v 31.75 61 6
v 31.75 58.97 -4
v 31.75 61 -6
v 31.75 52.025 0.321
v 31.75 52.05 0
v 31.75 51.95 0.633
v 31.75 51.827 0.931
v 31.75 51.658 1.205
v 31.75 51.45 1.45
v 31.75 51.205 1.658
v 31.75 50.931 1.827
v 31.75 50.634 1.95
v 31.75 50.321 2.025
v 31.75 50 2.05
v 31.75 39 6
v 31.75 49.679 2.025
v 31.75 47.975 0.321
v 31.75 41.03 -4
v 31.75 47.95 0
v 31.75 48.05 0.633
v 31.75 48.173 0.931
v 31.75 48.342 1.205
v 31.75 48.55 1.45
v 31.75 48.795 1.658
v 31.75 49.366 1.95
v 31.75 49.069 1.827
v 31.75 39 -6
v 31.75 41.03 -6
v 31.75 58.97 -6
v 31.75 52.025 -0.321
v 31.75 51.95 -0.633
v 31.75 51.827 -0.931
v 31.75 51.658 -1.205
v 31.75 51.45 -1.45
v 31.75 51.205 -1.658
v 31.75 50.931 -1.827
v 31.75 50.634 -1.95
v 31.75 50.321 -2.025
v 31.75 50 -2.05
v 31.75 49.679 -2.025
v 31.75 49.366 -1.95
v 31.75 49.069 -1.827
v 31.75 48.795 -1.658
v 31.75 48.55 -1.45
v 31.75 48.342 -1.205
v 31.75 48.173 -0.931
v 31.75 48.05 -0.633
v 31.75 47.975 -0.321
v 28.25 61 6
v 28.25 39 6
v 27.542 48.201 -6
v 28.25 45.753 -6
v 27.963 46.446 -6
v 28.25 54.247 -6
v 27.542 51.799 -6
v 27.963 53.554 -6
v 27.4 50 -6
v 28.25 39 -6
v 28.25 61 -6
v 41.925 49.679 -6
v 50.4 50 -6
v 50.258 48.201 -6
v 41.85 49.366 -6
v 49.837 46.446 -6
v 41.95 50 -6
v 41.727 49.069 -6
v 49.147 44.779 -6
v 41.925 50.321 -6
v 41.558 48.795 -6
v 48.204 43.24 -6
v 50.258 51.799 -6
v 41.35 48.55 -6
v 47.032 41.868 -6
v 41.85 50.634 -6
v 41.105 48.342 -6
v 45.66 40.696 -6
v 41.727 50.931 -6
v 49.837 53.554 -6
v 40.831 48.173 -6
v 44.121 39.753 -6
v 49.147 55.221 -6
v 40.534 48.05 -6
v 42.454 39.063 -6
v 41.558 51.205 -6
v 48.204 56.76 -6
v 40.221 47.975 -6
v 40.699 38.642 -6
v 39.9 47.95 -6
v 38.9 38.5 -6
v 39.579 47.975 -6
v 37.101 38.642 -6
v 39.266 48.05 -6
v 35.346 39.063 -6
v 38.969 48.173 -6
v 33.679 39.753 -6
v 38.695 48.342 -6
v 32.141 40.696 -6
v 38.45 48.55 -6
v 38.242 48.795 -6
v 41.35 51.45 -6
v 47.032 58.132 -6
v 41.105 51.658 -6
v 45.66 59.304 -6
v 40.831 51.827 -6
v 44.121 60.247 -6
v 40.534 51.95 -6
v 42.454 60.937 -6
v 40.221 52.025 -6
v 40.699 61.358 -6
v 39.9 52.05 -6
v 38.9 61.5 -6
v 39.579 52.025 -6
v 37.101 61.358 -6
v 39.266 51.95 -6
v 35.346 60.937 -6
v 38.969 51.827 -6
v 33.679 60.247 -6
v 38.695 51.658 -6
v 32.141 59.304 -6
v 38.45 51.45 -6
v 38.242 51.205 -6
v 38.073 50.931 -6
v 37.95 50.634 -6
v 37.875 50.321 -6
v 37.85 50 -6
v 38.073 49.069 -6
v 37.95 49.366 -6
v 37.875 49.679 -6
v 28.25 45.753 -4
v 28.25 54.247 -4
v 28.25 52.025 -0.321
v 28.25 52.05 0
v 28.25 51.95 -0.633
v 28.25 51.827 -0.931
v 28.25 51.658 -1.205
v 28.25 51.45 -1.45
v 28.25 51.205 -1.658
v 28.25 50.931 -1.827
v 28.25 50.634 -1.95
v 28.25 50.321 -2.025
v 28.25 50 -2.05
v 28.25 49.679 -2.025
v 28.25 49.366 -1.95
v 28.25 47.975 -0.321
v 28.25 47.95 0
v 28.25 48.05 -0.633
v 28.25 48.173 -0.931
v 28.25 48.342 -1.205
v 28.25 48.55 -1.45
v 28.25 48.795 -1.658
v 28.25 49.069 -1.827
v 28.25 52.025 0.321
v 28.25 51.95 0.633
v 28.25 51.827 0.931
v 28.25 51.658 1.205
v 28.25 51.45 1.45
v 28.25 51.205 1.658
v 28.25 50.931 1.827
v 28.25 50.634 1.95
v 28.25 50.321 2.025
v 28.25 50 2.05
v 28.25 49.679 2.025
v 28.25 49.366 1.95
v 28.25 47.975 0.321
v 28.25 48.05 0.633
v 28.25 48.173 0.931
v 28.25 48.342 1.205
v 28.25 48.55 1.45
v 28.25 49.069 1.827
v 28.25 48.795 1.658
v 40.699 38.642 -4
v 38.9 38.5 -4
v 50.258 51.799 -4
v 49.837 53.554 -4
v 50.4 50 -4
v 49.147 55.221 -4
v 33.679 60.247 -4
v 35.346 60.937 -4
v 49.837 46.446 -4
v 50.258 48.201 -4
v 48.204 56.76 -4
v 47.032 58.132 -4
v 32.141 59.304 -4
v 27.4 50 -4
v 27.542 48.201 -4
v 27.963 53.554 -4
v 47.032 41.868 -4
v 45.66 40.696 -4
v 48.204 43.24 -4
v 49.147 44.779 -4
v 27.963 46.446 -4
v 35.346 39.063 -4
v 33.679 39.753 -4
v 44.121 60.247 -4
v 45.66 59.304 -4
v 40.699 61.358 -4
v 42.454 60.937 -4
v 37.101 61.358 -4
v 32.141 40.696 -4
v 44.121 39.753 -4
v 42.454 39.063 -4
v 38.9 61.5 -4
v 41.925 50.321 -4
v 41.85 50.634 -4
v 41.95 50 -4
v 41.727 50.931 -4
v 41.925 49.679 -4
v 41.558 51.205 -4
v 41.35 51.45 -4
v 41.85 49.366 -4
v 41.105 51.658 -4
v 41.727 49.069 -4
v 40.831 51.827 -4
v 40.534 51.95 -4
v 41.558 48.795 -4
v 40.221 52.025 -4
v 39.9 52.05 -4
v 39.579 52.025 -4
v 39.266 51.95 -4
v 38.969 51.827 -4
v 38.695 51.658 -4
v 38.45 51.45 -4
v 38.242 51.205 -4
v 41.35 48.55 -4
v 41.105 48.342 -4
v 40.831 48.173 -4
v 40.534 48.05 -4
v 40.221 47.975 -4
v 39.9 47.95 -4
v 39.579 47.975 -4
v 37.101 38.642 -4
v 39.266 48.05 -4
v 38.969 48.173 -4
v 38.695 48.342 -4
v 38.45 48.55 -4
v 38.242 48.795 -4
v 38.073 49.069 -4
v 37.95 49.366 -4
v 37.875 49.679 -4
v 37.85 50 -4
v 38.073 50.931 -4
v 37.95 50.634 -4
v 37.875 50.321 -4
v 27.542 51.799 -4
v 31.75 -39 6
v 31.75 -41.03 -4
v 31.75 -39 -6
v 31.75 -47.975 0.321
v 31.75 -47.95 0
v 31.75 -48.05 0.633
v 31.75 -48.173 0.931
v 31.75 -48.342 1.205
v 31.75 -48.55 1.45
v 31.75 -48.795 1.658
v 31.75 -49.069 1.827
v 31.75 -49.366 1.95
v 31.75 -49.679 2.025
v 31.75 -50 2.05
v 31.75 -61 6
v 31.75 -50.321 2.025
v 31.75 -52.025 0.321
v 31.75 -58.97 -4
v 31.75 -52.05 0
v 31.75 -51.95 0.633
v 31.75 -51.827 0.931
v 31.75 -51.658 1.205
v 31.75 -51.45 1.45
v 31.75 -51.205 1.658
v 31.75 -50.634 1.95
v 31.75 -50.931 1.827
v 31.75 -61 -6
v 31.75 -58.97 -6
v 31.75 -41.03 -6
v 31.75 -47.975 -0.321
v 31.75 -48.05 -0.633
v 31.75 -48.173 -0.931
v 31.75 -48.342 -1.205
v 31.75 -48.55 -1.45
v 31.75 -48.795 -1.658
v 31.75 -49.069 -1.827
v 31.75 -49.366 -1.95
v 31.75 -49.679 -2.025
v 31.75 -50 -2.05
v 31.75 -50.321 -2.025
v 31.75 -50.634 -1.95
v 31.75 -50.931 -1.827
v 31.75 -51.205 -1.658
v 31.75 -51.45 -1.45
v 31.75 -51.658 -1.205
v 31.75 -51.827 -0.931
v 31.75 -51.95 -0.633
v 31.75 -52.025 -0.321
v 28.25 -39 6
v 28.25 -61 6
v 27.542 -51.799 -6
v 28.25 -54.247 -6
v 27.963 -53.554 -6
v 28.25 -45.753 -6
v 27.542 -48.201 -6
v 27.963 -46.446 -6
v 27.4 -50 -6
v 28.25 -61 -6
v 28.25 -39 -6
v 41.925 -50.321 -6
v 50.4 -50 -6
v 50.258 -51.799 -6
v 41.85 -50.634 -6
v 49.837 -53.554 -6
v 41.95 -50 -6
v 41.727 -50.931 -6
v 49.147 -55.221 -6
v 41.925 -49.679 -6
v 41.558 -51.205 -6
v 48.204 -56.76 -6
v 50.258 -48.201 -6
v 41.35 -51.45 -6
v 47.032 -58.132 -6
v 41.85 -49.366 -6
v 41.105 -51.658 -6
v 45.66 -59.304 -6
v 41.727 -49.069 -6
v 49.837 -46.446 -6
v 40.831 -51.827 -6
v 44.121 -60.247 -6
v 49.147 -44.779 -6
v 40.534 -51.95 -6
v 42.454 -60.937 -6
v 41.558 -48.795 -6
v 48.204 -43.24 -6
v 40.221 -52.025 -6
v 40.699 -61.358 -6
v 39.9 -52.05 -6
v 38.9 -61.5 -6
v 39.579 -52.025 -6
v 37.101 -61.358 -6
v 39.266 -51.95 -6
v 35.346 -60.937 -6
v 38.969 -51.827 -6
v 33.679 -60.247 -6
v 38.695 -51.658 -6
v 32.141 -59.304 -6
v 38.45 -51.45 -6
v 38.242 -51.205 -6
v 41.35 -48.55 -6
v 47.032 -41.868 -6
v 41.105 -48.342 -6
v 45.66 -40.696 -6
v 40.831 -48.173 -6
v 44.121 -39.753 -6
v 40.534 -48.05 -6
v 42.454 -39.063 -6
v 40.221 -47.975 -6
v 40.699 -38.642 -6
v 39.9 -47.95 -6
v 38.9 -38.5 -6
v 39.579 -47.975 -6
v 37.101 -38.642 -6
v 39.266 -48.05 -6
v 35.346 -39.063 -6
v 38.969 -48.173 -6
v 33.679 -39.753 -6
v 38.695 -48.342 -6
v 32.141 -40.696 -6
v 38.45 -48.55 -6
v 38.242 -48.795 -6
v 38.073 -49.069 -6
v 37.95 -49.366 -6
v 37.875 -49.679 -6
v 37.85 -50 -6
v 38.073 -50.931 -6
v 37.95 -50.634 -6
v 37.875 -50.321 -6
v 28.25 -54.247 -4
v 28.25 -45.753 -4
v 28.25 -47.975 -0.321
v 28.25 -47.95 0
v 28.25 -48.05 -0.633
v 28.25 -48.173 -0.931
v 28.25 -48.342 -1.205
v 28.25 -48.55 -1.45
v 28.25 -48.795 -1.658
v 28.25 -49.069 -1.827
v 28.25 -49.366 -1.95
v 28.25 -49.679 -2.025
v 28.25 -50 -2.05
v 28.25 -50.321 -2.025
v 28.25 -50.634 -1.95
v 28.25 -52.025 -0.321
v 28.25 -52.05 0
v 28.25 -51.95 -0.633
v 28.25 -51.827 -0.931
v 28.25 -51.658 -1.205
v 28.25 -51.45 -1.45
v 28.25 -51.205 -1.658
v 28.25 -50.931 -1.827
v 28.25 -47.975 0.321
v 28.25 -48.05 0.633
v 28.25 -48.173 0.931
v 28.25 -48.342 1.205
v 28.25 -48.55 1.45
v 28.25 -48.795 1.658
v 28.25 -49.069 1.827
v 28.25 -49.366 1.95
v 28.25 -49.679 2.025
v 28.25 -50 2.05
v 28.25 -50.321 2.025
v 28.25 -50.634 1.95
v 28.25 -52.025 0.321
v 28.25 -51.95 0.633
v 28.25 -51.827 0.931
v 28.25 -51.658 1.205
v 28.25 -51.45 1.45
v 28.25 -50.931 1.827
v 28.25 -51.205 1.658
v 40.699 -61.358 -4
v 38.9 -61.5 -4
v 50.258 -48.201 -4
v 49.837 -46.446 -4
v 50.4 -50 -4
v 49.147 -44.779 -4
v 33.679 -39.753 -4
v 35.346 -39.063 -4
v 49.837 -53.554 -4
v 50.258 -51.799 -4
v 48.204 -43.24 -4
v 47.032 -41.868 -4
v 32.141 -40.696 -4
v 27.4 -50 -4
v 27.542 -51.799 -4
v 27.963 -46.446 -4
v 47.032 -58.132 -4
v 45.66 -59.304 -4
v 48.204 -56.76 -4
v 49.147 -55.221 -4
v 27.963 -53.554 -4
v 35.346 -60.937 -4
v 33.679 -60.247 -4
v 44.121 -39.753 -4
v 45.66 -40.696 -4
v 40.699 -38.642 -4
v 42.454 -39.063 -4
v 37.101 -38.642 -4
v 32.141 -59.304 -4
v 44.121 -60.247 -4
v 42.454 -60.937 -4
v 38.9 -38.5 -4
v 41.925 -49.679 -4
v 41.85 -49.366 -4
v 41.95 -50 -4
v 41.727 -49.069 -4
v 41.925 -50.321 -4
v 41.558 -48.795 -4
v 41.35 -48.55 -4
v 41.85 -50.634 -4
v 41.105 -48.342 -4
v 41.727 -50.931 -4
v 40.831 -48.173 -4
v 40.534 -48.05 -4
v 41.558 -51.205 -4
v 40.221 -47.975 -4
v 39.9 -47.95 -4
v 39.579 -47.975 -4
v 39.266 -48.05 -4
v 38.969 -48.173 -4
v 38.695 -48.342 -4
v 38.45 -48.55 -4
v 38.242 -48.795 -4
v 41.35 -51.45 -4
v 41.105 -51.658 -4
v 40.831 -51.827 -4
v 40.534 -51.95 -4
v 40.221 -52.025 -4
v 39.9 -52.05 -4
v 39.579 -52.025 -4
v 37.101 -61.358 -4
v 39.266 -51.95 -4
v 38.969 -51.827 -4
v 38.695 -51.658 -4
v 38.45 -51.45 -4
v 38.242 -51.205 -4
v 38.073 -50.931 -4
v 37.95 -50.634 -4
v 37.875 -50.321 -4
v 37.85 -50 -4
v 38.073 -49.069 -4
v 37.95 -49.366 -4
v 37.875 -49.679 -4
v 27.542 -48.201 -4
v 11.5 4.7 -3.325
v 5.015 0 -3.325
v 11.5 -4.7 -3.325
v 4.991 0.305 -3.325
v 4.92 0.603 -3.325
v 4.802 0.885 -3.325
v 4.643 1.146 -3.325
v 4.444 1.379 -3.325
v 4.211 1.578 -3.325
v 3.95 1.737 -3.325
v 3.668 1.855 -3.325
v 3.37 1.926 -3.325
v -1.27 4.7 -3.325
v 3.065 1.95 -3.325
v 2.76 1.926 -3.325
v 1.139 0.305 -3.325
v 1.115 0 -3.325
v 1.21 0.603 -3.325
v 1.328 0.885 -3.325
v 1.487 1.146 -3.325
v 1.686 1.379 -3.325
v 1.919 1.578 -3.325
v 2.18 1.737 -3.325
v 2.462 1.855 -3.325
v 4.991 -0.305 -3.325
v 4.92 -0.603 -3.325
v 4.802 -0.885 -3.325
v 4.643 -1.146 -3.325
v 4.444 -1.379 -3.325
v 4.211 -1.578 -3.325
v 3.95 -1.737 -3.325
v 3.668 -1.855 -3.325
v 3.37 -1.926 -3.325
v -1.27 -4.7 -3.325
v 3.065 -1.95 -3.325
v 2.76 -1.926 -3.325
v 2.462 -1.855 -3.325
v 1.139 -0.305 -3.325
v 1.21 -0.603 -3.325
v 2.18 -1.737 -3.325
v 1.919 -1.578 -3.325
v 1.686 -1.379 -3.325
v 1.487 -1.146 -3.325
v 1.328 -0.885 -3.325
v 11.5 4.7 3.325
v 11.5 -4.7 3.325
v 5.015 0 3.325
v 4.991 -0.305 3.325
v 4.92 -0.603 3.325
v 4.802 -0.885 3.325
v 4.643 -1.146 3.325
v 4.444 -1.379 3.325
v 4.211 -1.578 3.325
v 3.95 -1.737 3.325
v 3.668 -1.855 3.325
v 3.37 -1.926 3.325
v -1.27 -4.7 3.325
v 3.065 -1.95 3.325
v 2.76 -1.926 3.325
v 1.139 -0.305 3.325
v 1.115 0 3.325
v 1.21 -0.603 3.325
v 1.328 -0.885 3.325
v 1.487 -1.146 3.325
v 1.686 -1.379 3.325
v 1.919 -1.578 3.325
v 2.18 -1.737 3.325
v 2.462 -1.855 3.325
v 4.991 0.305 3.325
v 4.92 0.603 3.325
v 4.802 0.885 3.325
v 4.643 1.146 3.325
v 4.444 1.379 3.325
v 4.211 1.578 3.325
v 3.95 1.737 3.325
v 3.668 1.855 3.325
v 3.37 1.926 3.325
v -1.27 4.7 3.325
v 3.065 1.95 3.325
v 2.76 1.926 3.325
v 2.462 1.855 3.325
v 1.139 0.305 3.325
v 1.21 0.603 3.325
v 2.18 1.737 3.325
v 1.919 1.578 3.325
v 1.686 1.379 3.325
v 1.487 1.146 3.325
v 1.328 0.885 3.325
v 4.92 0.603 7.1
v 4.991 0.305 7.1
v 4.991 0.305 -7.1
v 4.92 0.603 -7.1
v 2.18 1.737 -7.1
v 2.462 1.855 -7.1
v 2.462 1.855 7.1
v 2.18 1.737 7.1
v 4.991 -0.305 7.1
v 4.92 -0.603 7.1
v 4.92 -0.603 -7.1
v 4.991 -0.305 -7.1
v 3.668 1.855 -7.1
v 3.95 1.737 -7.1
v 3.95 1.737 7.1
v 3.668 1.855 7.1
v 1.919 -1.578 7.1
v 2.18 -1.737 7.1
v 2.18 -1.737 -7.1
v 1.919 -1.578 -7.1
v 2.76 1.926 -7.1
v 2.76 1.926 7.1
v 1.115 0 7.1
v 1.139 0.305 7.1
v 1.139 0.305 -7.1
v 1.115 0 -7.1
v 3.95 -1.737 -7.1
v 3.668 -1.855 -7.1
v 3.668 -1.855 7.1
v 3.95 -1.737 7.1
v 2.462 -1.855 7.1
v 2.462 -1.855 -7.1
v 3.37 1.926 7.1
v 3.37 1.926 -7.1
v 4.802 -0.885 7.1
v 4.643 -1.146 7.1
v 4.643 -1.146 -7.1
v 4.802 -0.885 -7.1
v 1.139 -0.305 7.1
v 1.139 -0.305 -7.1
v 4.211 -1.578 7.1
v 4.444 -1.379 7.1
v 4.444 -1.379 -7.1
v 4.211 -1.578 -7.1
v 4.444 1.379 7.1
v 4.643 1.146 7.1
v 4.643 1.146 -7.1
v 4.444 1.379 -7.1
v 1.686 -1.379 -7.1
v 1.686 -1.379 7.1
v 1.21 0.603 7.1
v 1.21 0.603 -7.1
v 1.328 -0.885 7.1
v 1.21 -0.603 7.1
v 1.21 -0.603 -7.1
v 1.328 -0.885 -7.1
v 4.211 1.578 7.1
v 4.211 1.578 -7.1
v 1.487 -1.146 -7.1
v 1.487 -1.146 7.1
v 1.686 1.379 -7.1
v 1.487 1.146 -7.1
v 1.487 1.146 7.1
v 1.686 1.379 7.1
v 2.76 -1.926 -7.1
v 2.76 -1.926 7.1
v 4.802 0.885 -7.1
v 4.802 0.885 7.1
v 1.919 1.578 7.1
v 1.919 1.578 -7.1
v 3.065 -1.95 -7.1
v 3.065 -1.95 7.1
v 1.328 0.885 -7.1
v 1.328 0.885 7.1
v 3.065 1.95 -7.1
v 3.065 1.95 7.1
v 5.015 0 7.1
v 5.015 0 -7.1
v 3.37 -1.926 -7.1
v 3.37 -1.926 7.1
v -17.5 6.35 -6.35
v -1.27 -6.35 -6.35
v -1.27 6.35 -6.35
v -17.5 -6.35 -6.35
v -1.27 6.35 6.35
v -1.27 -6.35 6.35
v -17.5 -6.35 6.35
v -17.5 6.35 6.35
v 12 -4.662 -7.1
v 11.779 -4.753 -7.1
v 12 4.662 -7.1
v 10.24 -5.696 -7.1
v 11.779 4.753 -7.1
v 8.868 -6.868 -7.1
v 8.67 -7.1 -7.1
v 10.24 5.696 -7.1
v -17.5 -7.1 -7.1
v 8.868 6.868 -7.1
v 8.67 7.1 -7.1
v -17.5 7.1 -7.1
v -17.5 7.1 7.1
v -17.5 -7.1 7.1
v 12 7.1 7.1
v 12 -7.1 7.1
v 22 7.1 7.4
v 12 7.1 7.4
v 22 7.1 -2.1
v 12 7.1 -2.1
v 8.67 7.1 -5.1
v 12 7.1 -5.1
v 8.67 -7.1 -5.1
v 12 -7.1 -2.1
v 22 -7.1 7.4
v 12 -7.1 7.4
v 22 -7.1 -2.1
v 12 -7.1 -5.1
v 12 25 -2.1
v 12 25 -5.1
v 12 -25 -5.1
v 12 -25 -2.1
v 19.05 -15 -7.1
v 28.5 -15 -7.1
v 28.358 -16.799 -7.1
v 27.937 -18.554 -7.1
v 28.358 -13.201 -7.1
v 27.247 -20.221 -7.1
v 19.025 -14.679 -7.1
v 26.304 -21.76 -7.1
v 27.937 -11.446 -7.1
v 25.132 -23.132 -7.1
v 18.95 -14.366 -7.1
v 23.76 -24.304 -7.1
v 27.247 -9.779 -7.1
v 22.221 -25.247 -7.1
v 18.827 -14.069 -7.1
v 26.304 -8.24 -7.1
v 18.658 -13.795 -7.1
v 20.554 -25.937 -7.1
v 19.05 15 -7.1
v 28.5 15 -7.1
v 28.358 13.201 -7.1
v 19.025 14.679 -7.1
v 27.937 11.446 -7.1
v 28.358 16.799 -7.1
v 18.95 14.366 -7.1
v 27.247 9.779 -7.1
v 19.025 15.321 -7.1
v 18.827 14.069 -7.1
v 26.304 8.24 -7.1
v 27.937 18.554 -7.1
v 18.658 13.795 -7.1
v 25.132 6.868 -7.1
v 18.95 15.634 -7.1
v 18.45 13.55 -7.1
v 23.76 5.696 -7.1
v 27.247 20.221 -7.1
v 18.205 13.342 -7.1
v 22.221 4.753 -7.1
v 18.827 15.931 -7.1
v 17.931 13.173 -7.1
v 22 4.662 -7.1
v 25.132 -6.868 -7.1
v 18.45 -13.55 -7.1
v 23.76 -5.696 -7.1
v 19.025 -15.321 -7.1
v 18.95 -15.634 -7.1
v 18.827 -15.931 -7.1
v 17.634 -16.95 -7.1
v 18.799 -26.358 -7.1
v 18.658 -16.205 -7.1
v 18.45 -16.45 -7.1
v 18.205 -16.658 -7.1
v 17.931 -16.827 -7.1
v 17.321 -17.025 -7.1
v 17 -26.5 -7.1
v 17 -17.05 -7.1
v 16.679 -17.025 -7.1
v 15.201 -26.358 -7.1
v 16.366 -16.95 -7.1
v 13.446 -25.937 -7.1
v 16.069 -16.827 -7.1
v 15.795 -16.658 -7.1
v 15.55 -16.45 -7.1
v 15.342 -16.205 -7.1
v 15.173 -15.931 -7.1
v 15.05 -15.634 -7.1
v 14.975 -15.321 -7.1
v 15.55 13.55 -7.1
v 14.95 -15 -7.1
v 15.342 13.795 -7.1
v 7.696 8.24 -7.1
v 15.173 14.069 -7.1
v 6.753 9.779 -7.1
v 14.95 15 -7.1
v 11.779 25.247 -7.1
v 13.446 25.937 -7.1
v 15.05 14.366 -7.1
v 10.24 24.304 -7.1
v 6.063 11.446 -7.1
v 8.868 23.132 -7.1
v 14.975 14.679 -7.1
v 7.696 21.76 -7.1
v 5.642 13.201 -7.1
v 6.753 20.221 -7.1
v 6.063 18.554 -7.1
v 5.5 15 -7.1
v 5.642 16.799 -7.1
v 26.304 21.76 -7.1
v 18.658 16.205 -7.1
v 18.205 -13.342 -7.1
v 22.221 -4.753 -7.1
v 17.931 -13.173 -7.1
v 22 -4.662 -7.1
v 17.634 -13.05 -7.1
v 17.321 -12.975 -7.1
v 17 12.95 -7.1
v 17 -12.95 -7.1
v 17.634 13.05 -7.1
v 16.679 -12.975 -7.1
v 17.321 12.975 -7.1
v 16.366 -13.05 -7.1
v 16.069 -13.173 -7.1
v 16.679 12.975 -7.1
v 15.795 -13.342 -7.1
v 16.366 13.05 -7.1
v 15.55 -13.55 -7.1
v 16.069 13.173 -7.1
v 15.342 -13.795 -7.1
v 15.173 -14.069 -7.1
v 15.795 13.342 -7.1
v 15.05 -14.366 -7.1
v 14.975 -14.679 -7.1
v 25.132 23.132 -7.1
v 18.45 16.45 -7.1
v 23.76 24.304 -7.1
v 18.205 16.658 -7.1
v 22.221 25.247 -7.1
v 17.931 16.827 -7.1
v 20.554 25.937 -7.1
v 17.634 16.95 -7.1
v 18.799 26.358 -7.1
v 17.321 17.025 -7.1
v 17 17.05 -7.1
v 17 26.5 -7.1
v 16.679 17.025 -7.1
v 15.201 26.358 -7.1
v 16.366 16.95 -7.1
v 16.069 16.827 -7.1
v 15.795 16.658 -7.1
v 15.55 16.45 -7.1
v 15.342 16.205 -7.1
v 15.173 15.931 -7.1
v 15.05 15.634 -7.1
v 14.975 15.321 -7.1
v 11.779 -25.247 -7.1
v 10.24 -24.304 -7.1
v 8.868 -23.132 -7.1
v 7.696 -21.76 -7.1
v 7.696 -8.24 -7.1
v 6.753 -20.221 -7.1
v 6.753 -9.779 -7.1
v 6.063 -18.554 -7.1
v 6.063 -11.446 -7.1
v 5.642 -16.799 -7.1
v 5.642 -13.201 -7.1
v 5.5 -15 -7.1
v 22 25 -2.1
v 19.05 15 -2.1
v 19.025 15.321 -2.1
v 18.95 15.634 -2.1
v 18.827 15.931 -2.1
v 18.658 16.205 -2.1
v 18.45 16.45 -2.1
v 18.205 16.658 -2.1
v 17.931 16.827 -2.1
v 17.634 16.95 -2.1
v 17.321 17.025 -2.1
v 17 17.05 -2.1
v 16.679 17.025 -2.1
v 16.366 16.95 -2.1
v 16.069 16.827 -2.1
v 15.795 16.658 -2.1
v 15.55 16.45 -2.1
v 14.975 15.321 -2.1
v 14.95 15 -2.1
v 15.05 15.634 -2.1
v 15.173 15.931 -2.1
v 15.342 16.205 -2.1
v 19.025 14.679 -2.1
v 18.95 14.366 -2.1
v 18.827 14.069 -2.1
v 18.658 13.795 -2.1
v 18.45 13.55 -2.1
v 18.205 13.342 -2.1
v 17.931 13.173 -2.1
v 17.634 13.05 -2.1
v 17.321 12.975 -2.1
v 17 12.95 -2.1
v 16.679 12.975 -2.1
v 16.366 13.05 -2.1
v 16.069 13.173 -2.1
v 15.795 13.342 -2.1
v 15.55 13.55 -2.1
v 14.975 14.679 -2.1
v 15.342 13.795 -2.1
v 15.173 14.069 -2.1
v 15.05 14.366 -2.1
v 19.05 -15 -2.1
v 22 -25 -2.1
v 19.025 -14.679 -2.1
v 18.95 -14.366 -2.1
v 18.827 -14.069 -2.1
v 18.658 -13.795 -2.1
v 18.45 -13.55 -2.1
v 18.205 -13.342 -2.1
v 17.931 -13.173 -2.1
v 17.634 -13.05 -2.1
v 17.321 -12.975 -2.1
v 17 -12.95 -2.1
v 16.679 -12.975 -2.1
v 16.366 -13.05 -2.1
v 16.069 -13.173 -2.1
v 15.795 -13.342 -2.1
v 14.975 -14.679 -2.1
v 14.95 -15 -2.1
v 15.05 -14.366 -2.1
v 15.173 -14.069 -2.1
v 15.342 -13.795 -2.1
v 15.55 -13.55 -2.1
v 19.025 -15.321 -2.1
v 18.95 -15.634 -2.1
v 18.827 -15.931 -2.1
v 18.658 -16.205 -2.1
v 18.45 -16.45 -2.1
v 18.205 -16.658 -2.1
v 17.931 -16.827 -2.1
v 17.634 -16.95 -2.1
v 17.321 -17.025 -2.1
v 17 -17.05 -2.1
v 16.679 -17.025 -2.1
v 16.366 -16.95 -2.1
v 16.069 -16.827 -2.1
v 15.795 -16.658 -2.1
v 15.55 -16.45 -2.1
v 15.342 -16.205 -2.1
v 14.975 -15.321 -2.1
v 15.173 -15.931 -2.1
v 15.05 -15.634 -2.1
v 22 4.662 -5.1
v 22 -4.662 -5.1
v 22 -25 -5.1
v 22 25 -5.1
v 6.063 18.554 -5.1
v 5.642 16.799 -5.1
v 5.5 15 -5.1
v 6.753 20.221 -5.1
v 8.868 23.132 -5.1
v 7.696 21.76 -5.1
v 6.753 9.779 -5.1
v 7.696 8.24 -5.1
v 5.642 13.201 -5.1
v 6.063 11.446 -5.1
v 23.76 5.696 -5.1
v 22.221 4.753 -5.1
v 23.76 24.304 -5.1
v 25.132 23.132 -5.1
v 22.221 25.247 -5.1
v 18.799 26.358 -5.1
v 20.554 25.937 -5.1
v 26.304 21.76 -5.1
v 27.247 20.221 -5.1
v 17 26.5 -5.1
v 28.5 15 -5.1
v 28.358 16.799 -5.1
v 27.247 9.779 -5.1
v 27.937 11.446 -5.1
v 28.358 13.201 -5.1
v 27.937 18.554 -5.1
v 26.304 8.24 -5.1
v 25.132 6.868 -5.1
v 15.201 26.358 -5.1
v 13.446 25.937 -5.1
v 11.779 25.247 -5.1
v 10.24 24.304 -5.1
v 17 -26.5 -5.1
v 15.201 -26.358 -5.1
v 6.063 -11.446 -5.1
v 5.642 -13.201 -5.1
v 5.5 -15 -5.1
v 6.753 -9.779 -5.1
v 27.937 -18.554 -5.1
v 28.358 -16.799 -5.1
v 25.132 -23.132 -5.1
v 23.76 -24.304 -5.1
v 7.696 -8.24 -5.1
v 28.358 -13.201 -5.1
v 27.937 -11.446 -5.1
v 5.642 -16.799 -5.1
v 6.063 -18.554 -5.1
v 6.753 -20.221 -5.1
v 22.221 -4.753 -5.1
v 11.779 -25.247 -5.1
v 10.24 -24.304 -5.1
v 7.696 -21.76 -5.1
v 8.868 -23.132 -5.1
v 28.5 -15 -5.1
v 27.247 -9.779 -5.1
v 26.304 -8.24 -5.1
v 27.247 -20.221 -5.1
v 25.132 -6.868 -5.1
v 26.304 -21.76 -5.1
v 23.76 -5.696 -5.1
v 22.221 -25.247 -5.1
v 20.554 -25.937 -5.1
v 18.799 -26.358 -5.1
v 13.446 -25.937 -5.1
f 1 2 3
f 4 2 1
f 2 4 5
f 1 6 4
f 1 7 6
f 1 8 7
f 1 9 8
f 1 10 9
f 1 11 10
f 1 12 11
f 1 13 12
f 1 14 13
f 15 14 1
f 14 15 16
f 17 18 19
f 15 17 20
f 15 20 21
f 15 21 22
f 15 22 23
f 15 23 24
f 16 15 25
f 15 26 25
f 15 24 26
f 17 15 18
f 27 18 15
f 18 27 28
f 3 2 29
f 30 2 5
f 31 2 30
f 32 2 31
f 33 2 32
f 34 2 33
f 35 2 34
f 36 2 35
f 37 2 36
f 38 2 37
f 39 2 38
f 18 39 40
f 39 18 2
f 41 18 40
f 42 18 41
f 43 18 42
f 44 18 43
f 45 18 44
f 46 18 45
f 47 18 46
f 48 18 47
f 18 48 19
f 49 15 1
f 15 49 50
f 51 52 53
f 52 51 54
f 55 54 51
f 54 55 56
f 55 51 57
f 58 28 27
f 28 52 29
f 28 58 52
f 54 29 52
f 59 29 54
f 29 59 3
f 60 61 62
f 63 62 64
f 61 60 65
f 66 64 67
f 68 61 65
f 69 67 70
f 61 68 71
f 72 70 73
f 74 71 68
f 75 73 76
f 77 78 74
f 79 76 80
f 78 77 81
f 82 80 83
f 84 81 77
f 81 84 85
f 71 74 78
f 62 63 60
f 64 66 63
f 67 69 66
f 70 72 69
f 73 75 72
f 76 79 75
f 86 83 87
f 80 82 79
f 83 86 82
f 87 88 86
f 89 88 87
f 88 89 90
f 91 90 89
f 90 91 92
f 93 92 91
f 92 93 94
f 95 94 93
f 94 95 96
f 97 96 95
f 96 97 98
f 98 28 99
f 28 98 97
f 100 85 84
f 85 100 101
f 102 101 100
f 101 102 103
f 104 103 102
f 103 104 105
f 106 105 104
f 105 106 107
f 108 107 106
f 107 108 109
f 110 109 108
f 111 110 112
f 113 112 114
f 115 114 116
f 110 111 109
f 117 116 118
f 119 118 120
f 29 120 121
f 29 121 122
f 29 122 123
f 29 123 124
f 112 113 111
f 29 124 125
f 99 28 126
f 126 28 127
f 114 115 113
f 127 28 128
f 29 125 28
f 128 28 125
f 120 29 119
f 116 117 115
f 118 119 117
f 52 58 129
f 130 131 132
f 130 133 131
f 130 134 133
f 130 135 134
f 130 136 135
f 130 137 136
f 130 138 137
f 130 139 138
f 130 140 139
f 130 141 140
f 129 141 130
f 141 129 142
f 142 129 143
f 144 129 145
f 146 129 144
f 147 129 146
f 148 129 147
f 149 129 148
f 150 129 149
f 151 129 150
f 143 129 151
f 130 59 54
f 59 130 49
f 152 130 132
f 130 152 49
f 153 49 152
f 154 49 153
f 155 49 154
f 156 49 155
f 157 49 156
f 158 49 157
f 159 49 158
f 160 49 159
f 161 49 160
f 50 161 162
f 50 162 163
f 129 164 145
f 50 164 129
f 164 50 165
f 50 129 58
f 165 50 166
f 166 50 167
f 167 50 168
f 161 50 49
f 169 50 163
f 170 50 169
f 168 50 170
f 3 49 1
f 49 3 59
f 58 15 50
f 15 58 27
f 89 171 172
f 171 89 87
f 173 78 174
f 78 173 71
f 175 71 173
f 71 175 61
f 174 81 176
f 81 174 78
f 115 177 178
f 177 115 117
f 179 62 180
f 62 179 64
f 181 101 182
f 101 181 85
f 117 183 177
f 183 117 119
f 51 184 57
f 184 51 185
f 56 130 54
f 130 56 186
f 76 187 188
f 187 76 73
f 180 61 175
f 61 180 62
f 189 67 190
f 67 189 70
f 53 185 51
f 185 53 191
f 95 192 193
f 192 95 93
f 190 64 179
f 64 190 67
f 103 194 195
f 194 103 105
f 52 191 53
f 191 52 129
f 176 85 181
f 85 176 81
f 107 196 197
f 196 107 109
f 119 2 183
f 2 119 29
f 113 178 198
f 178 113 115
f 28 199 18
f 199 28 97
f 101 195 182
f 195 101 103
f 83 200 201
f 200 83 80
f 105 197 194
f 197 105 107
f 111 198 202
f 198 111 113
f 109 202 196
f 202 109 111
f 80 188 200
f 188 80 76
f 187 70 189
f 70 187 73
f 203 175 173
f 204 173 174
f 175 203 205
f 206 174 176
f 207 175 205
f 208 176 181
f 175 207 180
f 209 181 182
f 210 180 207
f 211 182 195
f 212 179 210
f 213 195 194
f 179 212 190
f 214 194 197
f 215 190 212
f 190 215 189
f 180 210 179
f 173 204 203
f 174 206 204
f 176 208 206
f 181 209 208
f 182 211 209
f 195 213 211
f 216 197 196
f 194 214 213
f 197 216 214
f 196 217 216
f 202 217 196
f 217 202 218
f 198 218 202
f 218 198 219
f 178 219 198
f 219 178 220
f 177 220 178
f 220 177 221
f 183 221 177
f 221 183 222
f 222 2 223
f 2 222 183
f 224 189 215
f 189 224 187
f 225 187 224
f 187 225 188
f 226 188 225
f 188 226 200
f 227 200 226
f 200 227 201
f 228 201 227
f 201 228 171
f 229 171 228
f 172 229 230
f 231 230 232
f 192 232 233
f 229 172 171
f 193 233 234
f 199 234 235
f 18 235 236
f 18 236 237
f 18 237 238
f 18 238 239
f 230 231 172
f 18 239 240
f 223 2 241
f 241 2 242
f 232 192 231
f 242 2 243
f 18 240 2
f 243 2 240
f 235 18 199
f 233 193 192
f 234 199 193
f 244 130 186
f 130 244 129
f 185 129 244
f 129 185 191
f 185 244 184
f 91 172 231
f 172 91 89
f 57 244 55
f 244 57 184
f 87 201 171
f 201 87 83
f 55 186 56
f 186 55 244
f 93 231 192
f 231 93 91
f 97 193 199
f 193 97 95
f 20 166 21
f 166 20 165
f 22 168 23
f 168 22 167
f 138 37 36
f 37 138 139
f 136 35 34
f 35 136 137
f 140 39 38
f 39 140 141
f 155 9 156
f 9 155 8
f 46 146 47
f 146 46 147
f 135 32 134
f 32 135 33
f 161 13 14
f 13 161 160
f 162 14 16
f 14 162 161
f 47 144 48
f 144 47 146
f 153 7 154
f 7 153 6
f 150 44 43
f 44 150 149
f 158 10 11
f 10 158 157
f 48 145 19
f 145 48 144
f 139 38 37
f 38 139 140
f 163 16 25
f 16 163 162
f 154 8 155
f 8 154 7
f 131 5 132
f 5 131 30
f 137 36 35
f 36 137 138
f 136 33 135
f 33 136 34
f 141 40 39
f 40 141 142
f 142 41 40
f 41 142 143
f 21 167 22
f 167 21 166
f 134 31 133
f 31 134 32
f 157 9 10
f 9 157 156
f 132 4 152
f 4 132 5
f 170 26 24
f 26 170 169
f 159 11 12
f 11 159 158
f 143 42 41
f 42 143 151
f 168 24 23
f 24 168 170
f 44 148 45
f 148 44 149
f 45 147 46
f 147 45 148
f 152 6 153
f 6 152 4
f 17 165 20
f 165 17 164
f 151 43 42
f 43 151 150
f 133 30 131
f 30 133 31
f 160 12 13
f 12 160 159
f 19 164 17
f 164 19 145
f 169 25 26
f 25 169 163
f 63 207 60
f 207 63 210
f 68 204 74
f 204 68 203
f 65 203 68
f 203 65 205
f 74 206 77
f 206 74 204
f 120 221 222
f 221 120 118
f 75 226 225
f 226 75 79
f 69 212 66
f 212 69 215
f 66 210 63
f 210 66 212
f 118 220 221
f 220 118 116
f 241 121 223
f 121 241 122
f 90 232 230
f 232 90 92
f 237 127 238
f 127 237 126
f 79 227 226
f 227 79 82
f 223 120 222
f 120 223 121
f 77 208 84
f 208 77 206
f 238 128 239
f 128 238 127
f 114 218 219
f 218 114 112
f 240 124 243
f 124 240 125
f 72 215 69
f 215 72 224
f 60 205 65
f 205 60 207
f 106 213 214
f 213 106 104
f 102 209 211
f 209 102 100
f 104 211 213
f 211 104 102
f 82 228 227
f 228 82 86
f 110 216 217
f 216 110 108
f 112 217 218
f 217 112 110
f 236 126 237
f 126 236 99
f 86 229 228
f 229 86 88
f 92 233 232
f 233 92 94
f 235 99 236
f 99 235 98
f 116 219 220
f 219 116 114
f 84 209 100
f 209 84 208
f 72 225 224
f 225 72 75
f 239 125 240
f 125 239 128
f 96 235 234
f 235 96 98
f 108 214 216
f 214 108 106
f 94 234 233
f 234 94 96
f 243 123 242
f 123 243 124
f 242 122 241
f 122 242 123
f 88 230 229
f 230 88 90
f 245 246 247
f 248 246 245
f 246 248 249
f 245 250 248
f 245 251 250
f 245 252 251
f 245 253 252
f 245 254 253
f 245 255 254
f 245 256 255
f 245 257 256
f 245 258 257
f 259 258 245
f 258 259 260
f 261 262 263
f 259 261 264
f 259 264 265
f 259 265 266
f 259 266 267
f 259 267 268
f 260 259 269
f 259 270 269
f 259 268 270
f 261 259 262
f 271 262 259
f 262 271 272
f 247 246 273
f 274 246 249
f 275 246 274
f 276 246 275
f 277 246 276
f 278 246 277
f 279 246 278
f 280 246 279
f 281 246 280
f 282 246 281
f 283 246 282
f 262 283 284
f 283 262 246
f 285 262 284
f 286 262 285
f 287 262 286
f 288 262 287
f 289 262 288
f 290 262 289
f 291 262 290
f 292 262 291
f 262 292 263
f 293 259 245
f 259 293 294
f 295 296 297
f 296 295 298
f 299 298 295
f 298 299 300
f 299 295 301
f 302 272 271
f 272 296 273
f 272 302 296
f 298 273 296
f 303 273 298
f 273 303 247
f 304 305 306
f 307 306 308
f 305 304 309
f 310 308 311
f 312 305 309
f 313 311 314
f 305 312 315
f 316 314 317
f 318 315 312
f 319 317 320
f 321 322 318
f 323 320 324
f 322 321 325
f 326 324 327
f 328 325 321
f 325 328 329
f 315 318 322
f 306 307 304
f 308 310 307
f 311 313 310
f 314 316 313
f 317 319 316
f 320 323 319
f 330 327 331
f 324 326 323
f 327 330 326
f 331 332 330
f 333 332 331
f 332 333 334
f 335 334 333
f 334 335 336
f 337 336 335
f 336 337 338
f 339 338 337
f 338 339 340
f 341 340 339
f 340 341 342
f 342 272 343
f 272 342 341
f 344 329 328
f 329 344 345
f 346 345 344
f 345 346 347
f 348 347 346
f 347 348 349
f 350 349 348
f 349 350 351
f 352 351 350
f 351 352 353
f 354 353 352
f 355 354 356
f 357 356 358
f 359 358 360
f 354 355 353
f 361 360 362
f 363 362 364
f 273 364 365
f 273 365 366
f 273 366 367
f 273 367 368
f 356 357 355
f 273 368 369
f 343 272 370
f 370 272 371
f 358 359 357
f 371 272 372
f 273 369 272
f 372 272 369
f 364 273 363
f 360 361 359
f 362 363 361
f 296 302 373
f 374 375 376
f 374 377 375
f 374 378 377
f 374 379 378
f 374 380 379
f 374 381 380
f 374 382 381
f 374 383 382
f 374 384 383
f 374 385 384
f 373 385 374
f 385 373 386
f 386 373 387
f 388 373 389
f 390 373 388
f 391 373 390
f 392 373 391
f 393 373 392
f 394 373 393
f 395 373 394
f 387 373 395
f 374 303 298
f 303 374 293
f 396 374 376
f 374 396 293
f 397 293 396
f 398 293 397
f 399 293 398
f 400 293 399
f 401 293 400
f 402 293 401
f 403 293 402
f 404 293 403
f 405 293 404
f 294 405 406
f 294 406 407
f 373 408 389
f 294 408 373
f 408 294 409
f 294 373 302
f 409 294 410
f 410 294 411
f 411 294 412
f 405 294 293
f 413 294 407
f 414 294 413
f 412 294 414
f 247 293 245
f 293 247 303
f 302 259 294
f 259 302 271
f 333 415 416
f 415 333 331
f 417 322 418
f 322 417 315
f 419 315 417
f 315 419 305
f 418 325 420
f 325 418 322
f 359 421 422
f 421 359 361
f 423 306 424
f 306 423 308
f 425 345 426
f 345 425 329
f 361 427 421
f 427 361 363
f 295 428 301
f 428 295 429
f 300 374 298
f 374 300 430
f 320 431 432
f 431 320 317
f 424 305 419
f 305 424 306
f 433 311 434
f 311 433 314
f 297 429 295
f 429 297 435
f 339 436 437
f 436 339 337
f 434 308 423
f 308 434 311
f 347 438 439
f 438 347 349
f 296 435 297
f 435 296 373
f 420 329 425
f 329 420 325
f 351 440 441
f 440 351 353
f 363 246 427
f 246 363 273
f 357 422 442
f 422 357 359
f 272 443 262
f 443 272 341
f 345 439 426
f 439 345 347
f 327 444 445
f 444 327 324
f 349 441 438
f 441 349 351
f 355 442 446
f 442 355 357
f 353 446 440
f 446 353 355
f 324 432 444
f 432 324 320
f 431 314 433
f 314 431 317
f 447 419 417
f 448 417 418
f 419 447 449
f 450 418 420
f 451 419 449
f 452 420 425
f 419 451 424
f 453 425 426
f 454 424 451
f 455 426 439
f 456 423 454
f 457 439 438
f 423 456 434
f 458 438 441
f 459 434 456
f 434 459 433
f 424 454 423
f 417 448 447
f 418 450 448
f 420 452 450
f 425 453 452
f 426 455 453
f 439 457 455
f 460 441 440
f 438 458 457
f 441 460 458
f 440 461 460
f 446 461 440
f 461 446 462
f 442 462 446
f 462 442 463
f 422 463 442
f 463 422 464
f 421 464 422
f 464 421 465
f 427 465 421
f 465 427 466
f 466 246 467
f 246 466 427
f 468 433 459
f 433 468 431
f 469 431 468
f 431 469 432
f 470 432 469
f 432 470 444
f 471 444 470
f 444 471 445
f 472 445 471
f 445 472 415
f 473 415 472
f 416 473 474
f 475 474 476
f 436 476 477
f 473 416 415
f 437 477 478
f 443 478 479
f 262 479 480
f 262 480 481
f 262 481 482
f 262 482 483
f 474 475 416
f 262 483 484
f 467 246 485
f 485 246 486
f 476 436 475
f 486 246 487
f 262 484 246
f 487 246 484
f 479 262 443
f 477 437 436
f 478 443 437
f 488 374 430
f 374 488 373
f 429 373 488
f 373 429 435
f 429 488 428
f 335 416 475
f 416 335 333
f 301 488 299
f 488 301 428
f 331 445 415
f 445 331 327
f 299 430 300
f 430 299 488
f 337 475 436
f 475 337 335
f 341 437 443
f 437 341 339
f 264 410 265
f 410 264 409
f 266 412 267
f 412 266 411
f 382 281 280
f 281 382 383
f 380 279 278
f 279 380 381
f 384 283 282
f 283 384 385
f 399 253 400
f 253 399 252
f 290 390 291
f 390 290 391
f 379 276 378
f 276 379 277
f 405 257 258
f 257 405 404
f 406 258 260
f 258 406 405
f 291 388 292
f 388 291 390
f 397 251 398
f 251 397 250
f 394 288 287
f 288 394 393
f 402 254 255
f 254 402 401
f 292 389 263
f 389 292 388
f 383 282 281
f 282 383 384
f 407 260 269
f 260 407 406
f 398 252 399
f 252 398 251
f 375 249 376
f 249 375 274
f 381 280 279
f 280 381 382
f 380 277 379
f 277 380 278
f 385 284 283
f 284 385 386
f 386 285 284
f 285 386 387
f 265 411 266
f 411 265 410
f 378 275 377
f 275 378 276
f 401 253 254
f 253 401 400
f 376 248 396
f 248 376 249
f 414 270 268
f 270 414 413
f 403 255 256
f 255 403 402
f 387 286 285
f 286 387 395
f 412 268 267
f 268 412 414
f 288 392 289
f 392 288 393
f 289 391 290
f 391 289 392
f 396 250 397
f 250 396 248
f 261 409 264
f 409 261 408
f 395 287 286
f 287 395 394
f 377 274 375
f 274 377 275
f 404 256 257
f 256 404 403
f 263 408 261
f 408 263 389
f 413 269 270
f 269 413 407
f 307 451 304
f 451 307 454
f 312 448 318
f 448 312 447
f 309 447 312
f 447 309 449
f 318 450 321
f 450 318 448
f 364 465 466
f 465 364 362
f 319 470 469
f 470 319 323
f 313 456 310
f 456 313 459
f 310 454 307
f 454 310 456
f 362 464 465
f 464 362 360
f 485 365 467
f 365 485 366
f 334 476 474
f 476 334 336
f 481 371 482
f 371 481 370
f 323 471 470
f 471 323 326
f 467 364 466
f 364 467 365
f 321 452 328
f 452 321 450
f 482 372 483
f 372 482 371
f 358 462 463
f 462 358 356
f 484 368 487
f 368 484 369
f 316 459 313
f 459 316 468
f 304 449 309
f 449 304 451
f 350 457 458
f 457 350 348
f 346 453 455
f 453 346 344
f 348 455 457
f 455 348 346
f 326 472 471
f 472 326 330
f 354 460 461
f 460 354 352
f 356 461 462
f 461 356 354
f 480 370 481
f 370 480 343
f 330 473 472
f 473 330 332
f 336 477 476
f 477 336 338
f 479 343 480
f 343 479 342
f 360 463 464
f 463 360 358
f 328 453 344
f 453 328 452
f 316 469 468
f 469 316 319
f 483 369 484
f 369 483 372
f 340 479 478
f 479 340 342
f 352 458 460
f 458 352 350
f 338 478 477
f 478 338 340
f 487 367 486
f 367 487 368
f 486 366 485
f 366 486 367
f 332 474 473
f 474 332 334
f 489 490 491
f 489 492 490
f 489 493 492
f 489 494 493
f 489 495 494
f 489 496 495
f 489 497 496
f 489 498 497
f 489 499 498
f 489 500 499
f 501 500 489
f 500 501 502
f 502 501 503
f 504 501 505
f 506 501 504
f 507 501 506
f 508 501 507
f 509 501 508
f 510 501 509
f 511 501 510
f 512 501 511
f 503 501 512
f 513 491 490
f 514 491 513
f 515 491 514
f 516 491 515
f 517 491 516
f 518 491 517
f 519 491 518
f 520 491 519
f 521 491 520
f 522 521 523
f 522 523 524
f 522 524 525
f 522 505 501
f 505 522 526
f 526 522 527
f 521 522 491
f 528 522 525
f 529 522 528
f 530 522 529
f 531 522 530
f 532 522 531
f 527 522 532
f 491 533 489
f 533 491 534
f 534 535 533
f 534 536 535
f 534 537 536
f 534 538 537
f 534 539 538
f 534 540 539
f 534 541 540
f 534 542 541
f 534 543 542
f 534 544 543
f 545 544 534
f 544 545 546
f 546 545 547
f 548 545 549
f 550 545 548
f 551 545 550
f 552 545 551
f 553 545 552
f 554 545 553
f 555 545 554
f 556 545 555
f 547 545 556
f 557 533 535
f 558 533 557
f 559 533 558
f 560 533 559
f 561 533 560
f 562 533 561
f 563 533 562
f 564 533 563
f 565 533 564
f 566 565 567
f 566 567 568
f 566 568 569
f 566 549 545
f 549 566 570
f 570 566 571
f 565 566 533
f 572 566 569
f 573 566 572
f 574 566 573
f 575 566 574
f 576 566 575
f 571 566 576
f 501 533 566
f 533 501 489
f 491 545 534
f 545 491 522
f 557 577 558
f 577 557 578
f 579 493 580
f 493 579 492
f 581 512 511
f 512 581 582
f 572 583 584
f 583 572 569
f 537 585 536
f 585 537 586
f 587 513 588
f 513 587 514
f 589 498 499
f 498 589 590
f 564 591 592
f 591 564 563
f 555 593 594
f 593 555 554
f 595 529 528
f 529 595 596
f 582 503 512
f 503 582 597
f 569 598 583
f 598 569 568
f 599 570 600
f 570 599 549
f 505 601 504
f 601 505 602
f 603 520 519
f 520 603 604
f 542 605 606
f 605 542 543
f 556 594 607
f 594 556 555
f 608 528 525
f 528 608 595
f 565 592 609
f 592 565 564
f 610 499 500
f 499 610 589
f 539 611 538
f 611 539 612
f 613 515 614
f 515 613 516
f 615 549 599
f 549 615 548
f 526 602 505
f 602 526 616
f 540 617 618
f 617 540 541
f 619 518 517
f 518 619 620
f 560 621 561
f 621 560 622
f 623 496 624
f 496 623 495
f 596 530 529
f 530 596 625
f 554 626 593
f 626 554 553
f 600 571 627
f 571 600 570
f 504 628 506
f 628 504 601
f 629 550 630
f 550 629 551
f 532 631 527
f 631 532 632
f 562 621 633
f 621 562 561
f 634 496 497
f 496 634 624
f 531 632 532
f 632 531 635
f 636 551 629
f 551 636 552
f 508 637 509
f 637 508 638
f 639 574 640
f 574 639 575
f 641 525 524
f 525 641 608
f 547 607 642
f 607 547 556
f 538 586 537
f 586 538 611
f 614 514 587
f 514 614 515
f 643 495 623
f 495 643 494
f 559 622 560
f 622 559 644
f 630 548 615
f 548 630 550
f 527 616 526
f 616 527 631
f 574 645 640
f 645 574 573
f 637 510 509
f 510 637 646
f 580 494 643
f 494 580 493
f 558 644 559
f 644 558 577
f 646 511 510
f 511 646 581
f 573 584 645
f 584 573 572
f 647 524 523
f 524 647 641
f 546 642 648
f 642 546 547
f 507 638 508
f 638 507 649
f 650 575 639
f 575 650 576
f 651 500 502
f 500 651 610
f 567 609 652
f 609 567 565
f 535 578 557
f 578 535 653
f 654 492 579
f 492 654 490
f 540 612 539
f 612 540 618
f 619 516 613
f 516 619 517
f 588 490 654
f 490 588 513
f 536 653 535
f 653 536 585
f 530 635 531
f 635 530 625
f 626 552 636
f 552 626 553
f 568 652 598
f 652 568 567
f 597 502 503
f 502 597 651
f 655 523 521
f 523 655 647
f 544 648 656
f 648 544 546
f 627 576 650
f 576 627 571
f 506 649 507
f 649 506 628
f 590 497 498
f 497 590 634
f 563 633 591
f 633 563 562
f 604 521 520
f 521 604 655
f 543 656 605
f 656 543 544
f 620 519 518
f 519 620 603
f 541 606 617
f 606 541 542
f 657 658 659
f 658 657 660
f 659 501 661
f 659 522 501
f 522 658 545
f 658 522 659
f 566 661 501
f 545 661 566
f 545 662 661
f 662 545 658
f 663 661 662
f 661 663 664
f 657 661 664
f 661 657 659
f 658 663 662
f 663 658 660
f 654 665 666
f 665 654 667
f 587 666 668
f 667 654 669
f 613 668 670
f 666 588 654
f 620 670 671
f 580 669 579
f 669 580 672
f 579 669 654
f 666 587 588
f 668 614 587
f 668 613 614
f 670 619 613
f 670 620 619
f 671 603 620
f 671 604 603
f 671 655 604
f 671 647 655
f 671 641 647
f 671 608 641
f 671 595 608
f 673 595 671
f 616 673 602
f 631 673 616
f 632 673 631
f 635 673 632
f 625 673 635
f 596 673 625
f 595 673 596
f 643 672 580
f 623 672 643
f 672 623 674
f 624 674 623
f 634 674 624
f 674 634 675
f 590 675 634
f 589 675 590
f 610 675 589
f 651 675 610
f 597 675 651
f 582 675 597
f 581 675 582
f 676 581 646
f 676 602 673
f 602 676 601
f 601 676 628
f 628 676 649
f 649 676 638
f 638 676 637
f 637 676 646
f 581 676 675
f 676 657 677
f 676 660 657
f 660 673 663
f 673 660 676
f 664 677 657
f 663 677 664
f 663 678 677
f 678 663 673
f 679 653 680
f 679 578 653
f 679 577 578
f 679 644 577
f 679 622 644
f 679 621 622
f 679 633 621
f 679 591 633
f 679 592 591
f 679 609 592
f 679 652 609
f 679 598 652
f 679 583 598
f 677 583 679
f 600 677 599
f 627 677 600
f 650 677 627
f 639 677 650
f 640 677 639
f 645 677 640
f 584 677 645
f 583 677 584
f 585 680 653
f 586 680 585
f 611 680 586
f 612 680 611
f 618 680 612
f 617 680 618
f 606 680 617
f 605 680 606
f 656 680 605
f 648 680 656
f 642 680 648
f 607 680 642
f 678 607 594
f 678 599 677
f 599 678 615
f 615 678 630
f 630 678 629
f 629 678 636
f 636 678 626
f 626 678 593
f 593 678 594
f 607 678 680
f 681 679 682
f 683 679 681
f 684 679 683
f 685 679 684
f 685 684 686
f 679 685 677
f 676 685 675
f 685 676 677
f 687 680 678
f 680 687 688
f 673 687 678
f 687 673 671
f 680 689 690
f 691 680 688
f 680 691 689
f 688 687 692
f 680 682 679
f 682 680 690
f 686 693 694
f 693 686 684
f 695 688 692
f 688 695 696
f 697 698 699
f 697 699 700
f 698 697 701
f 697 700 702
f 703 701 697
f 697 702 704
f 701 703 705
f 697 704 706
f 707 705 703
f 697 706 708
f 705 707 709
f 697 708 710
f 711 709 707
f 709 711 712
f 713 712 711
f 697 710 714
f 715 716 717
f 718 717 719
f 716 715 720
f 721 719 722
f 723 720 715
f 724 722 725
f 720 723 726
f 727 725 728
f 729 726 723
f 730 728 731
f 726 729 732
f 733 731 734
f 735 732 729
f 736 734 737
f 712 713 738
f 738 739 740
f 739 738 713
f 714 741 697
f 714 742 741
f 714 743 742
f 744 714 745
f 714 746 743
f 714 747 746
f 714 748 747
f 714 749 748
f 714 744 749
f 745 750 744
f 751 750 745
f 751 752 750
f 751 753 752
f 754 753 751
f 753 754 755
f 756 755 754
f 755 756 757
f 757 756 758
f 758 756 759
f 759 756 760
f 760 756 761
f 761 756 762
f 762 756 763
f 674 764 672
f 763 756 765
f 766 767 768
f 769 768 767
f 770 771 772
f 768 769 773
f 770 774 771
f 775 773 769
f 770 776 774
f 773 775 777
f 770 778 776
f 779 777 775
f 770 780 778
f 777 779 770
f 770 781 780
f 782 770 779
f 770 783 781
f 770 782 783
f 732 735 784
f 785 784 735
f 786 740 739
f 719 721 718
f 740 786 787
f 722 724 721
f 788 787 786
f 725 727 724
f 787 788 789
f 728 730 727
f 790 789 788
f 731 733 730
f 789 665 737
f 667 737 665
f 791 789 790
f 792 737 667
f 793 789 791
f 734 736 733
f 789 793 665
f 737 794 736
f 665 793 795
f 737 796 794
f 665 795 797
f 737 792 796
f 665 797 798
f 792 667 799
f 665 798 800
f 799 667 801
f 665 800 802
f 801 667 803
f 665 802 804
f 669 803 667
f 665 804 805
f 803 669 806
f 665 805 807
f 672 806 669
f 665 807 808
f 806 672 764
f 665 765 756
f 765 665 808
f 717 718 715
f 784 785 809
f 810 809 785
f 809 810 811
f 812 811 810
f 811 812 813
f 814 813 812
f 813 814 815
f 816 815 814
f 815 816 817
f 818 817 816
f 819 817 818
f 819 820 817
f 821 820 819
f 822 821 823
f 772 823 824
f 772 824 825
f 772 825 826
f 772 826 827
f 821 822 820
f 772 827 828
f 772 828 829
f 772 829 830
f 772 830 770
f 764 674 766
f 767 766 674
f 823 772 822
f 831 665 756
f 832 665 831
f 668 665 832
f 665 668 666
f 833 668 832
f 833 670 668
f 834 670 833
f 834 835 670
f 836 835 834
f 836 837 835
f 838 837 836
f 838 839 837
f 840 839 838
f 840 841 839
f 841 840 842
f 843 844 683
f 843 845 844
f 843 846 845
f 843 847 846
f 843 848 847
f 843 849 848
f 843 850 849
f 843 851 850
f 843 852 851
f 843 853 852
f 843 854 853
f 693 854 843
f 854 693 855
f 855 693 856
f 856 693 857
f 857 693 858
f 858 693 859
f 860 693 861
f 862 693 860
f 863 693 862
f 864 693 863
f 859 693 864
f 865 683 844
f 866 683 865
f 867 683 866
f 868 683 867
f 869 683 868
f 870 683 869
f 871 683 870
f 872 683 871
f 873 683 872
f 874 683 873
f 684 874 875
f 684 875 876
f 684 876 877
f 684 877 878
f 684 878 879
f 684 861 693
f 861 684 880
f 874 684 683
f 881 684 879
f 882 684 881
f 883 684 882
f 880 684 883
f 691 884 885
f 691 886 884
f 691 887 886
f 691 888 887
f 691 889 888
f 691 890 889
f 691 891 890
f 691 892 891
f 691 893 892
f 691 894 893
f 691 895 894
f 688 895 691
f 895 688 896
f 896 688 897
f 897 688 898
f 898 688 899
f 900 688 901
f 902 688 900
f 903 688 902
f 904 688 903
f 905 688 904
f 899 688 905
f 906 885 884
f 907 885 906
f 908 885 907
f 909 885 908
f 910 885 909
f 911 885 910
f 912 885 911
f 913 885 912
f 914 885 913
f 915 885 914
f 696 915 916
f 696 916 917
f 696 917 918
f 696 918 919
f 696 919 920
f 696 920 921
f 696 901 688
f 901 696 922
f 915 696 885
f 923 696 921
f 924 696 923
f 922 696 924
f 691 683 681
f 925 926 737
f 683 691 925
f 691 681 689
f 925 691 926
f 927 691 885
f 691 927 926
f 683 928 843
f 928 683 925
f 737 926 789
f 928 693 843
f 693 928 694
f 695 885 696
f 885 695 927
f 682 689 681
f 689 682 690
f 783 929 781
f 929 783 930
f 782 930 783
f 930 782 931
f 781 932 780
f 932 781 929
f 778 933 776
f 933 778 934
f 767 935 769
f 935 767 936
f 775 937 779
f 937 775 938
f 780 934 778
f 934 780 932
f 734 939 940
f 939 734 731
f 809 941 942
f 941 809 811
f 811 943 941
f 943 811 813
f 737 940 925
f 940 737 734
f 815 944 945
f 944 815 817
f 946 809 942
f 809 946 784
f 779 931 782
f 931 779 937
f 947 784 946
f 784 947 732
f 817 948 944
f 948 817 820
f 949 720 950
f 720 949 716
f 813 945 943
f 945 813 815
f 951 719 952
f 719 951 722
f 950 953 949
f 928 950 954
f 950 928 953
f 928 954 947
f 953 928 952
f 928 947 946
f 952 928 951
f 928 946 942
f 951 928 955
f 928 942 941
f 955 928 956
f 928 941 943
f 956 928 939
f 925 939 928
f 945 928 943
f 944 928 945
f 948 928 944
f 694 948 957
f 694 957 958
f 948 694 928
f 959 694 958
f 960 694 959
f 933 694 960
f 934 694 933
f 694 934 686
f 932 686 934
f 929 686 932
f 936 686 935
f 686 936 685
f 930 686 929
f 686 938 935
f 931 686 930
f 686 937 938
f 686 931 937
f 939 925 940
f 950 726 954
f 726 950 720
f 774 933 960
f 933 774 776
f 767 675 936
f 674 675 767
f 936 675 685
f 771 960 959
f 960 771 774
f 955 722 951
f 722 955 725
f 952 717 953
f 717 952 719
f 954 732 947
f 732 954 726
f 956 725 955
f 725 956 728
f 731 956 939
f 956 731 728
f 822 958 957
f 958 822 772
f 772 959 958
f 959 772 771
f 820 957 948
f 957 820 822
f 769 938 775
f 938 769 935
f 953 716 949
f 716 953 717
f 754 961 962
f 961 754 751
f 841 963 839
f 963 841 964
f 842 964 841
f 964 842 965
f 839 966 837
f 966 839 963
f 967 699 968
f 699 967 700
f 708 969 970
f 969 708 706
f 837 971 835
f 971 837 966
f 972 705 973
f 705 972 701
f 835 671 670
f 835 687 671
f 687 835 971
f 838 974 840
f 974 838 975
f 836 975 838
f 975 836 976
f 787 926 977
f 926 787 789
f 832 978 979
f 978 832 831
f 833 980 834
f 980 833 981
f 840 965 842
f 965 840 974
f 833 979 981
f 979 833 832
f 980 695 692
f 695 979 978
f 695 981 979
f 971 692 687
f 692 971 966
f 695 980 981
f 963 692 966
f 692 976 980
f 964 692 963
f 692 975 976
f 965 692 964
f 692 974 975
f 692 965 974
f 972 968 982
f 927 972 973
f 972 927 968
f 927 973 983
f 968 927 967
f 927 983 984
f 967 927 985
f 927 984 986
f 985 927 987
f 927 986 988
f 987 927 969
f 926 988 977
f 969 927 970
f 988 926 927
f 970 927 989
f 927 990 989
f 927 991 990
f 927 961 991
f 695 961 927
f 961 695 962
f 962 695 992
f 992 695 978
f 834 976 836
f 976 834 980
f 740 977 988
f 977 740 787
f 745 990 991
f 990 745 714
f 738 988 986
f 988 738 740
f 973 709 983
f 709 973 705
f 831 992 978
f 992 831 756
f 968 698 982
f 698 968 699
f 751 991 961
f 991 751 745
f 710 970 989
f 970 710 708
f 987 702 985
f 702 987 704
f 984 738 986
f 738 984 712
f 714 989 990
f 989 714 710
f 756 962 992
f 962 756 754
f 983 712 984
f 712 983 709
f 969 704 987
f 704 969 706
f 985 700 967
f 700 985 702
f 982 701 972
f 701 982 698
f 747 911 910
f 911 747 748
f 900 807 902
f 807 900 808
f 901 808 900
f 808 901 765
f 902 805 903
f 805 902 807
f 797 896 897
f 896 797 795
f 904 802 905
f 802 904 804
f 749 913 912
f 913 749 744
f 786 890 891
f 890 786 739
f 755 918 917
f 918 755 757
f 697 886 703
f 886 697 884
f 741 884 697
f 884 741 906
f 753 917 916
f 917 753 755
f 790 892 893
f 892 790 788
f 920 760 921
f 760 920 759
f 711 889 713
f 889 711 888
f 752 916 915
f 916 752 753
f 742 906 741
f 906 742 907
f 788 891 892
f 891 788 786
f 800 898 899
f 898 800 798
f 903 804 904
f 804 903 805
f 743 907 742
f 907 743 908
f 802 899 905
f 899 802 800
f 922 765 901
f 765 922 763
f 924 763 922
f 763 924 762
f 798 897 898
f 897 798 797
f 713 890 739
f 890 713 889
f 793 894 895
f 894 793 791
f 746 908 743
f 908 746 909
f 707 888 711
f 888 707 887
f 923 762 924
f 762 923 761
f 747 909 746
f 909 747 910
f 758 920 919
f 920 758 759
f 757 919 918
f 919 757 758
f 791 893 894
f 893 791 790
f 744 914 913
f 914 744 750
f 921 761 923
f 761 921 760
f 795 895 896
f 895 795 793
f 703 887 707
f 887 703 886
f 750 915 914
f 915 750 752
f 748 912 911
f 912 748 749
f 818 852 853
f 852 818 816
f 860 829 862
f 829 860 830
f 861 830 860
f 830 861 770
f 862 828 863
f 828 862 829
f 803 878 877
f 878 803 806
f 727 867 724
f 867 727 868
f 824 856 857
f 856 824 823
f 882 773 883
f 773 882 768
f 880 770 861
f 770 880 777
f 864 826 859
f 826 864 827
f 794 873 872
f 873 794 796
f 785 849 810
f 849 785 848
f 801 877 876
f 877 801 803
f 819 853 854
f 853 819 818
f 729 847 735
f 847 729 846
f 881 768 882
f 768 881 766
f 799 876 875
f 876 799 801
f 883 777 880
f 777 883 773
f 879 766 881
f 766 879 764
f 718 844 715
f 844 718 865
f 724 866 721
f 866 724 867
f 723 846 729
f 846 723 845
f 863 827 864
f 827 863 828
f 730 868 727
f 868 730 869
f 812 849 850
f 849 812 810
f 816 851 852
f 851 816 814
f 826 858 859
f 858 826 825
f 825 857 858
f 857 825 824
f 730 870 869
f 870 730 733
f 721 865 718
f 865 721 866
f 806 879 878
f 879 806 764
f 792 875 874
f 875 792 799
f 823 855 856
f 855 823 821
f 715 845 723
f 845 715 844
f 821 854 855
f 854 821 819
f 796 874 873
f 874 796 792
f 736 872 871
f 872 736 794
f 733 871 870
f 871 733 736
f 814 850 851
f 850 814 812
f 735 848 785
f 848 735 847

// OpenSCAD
screwD = 3.9;
screwL = 40;

actuatorX = 12;
actuatorY = 12;
actuatorZ = 25;

slitX = 6.45;//added.1mm
slitY = 9.2;//added.1mm
slitZ = 8.97+screwD;

sensorX = 10;
sensorY = 20;
sensorZ = 10;

platformX = 10;
platformY = 50;
platformZ = 5;

$fn = 40;
tol = 0.1;

module actuator_fit(){
    difference(){
    cube([actuatorX+2+2*tol,actuatorY+2+2*tol,actuatorZ+10],center=true);

    translate([0,0,-slitZ-1]){
        union(){
        cube([actuatorX+0.5+2*tol,actuatorY+0.5+2*tol,actuatorZ+2*tol],center = true);
            translate([0,0,(actuatorZ+slitZ)/2]){
            cube([slitX+2*tol,slitY+2*tol,slitZ],center = true);
    
            rotate([0,90,0]){
                translate([2,0,-screwL/2]){
                cylinder(d=screwD,h=screwL);
                }//end translate
            }//end rotate
        }//end translate
        }//end union
    }//end translate
    }//end difference
    
     translate([4.6,0,17]){   
rotate([0,90,0]){
    difference(){
    union(){
cube([platformX,platformY,platformZ],center = true);
 translate([0,0,-actuatorX/2]){
cube([platformX,actuatorY+2+2*tol,actuatorX],center = true);
 }//endtranslate
    
    translate([0,(platformY-sensorY)/2,(platformZ-2)/2]){
cylinder(d=sensorY+3,h=2,center=true);

    }//end translate
        translate([0,-(platformY-sensorY)/2,(platformZ-2)/2]){
cylinder(d=sensorY+3,h=2,center=true);
            
    }//end translate
}//end union
union(){
        translate([0,-(platformY-sensorY)/2,(platformZ-2)/2]){
            cylinder(d=screwD+2*tol,h=20,center=true);
    }//end translate
    translate([0,(platformY-sensorY)/2,(platformZ-2)/2]){

        cylinder(d=screwD+2*tol,h=20,center=true);
    }//end translate
}//end union
}//end difference
}//end rotate
}//end translate

}//end module


module lick_sensor_fit(){
    difference(){
        union(){
        cube([3.5,sensorY+2,sensorZ+2],center=true);
        translate([sensorX/2+screwD,0,-(sensorZ)/2]){
        cylinder(d=sensorY+3,h=2,center=true);
            }//end translate
        }
        //union(){
        //translate([0,0,1.1]){
        //%cube([sensorX,sensorY,sensorZ],center=true);
        //}//end translate
        

        rotate([0,90,0]){    
        cylinder(d=screwD+2*tol,h=sensorX+5,center=true);
        }//end rotate
         translate([sensorX/2+screwD+1,0,-(sensorZ)/2]){
        cylinder(d=screwD+2*tol,h=5,center=true);
        }//end translate
    //}//end union
           }//end difference
    }//end module
    


translate([30,50,0]){
lick_sensor_fit();    
}

translate([30,-50,0]){
lick_sensor_fit();    
}
rotate([0,90,0]){
actuator_fit();
}
